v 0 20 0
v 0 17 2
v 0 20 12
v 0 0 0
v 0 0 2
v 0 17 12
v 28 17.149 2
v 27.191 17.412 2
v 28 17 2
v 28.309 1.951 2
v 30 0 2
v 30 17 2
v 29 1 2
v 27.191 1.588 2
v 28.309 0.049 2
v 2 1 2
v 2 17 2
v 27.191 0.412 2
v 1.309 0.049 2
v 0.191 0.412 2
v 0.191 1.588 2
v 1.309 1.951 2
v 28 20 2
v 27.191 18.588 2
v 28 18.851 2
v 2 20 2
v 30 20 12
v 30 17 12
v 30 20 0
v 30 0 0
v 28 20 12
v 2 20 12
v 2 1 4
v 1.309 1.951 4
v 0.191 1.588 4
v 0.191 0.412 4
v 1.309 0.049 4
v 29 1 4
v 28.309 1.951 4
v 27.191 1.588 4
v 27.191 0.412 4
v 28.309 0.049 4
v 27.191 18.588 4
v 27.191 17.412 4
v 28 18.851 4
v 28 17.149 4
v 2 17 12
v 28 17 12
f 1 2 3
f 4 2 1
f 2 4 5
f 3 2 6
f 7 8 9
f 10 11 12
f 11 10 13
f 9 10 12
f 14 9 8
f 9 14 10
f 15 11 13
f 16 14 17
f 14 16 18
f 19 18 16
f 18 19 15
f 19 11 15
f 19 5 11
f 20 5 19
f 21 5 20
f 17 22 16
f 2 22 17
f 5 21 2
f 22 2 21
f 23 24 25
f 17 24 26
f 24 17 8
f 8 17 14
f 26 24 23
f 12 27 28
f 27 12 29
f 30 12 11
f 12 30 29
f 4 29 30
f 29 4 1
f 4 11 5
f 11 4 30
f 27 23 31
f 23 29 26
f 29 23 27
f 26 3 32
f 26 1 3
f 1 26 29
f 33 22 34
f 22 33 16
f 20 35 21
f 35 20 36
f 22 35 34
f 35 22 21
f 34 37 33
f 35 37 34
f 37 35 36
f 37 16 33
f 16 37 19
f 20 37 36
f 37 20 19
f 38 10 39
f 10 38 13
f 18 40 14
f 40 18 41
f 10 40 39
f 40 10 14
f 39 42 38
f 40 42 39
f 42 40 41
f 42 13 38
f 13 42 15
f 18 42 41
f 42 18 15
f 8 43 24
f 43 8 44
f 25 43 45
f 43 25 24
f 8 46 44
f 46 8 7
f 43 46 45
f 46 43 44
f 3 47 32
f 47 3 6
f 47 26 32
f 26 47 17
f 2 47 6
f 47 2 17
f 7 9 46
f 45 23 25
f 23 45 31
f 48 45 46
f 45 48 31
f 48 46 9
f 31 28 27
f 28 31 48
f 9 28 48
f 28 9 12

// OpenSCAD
// Frame of the bed
cube([30, 20, 2]);

// Legs of the bed (4 legs)
translate([1, 1, 0])
cylinder(h = 4, r = 1, center = false);
translate([28, 1, 0])
cylinder(h = 4, r = 1, center = false);
translate([1, 18, 0])
cylinder(h = 4, r = 1, center = false);
translate([28, 18, 0])
cylinder(h = 4, r = 1, center = false);

// Headboard
translate([0, 17, 2])
cube([2, 3, 10]);
translate([28, 17, 2])
cube([2, 3, 10]);
